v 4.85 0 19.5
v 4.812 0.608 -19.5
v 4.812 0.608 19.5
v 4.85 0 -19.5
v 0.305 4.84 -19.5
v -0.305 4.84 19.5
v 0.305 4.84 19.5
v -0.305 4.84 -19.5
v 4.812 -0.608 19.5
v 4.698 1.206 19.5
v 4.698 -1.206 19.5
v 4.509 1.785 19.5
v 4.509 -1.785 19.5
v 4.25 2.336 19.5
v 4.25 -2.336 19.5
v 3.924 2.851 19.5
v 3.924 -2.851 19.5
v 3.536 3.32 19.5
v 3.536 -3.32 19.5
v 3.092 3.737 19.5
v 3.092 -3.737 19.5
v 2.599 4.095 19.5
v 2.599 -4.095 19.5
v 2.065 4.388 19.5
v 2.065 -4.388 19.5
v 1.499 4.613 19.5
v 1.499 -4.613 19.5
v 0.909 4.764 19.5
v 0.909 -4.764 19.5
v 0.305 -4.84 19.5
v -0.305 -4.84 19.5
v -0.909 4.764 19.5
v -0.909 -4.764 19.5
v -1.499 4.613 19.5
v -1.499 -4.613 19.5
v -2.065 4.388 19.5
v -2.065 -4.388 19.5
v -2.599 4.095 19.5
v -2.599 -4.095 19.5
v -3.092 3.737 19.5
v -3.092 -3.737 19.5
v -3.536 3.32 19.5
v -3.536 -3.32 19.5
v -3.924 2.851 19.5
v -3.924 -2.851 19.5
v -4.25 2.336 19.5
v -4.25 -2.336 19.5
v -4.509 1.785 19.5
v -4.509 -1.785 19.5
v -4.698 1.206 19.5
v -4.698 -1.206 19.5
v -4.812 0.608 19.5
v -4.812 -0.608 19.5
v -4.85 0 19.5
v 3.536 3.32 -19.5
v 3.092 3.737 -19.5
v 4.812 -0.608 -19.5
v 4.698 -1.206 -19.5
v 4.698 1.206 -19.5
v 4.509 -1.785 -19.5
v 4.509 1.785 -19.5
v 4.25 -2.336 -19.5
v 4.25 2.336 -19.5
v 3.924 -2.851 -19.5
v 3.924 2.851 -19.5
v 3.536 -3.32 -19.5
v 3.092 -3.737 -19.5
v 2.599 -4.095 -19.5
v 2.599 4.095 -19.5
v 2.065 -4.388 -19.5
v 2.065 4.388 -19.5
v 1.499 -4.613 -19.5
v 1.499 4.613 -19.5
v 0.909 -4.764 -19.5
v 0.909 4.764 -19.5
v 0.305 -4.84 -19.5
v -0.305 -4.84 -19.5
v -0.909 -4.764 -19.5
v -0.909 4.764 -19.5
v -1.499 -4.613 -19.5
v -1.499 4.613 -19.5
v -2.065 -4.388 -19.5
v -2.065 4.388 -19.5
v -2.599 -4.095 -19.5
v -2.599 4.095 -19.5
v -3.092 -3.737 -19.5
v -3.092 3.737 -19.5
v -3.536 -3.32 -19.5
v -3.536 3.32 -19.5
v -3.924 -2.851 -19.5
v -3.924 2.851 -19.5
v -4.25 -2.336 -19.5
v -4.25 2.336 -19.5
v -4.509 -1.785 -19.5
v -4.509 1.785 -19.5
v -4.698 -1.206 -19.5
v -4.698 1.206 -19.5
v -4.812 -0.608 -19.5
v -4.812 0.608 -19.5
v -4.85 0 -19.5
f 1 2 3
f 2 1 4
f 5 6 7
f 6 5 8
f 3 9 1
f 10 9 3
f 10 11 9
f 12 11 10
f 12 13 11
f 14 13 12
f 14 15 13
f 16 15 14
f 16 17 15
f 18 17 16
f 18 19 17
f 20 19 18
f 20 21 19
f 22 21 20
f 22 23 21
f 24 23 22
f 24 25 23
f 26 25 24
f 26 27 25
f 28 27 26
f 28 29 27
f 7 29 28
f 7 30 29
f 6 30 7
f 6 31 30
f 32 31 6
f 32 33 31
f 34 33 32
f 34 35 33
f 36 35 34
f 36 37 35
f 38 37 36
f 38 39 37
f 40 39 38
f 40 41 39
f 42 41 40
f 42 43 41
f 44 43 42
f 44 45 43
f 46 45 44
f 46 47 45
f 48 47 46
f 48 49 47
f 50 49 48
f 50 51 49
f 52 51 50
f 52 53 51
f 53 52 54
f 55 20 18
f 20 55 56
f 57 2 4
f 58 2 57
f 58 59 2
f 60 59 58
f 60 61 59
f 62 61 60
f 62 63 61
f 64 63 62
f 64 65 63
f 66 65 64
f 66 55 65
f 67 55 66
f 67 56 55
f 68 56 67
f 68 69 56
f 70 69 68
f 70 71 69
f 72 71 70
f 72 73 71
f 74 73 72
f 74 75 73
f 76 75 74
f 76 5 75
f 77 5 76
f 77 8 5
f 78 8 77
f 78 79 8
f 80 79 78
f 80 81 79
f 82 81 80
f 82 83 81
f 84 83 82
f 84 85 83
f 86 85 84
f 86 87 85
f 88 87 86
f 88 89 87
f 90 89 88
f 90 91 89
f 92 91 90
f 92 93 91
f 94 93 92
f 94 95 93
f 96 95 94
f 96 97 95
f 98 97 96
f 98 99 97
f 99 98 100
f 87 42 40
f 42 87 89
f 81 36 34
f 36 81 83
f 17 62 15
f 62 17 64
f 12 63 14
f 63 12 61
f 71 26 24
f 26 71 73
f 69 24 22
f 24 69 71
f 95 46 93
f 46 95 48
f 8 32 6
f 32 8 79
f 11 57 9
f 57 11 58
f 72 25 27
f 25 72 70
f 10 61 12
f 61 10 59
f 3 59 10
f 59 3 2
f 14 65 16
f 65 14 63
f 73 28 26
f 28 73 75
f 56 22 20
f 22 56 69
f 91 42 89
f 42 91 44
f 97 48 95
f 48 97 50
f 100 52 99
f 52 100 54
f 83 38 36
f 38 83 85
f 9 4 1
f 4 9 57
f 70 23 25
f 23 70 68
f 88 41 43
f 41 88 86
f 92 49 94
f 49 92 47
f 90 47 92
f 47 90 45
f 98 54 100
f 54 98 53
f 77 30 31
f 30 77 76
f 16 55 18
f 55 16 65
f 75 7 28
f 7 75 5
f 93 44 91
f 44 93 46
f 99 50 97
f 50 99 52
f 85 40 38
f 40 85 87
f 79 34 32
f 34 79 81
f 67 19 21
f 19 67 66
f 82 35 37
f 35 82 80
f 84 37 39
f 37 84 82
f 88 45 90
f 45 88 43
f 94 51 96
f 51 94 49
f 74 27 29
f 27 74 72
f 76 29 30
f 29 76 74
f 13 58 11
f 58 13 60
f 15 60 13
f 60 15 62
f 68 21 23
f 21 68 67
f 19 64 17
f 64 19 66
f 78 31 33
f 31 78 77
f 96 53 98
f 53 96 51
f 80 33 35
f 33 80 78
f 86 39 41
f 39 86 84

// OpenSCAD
$fn = 50;


difference() {
	union() {
		translate(v = [0, 0, -19.5000000000]) {
			cylinder(h = 39, r = 4.8500000000);
		}
	}
	union() {
		translate(v = [0, 0, -100.0000000000]) {
			cylinder(h = 200, r = 0);
		}
	}
}
